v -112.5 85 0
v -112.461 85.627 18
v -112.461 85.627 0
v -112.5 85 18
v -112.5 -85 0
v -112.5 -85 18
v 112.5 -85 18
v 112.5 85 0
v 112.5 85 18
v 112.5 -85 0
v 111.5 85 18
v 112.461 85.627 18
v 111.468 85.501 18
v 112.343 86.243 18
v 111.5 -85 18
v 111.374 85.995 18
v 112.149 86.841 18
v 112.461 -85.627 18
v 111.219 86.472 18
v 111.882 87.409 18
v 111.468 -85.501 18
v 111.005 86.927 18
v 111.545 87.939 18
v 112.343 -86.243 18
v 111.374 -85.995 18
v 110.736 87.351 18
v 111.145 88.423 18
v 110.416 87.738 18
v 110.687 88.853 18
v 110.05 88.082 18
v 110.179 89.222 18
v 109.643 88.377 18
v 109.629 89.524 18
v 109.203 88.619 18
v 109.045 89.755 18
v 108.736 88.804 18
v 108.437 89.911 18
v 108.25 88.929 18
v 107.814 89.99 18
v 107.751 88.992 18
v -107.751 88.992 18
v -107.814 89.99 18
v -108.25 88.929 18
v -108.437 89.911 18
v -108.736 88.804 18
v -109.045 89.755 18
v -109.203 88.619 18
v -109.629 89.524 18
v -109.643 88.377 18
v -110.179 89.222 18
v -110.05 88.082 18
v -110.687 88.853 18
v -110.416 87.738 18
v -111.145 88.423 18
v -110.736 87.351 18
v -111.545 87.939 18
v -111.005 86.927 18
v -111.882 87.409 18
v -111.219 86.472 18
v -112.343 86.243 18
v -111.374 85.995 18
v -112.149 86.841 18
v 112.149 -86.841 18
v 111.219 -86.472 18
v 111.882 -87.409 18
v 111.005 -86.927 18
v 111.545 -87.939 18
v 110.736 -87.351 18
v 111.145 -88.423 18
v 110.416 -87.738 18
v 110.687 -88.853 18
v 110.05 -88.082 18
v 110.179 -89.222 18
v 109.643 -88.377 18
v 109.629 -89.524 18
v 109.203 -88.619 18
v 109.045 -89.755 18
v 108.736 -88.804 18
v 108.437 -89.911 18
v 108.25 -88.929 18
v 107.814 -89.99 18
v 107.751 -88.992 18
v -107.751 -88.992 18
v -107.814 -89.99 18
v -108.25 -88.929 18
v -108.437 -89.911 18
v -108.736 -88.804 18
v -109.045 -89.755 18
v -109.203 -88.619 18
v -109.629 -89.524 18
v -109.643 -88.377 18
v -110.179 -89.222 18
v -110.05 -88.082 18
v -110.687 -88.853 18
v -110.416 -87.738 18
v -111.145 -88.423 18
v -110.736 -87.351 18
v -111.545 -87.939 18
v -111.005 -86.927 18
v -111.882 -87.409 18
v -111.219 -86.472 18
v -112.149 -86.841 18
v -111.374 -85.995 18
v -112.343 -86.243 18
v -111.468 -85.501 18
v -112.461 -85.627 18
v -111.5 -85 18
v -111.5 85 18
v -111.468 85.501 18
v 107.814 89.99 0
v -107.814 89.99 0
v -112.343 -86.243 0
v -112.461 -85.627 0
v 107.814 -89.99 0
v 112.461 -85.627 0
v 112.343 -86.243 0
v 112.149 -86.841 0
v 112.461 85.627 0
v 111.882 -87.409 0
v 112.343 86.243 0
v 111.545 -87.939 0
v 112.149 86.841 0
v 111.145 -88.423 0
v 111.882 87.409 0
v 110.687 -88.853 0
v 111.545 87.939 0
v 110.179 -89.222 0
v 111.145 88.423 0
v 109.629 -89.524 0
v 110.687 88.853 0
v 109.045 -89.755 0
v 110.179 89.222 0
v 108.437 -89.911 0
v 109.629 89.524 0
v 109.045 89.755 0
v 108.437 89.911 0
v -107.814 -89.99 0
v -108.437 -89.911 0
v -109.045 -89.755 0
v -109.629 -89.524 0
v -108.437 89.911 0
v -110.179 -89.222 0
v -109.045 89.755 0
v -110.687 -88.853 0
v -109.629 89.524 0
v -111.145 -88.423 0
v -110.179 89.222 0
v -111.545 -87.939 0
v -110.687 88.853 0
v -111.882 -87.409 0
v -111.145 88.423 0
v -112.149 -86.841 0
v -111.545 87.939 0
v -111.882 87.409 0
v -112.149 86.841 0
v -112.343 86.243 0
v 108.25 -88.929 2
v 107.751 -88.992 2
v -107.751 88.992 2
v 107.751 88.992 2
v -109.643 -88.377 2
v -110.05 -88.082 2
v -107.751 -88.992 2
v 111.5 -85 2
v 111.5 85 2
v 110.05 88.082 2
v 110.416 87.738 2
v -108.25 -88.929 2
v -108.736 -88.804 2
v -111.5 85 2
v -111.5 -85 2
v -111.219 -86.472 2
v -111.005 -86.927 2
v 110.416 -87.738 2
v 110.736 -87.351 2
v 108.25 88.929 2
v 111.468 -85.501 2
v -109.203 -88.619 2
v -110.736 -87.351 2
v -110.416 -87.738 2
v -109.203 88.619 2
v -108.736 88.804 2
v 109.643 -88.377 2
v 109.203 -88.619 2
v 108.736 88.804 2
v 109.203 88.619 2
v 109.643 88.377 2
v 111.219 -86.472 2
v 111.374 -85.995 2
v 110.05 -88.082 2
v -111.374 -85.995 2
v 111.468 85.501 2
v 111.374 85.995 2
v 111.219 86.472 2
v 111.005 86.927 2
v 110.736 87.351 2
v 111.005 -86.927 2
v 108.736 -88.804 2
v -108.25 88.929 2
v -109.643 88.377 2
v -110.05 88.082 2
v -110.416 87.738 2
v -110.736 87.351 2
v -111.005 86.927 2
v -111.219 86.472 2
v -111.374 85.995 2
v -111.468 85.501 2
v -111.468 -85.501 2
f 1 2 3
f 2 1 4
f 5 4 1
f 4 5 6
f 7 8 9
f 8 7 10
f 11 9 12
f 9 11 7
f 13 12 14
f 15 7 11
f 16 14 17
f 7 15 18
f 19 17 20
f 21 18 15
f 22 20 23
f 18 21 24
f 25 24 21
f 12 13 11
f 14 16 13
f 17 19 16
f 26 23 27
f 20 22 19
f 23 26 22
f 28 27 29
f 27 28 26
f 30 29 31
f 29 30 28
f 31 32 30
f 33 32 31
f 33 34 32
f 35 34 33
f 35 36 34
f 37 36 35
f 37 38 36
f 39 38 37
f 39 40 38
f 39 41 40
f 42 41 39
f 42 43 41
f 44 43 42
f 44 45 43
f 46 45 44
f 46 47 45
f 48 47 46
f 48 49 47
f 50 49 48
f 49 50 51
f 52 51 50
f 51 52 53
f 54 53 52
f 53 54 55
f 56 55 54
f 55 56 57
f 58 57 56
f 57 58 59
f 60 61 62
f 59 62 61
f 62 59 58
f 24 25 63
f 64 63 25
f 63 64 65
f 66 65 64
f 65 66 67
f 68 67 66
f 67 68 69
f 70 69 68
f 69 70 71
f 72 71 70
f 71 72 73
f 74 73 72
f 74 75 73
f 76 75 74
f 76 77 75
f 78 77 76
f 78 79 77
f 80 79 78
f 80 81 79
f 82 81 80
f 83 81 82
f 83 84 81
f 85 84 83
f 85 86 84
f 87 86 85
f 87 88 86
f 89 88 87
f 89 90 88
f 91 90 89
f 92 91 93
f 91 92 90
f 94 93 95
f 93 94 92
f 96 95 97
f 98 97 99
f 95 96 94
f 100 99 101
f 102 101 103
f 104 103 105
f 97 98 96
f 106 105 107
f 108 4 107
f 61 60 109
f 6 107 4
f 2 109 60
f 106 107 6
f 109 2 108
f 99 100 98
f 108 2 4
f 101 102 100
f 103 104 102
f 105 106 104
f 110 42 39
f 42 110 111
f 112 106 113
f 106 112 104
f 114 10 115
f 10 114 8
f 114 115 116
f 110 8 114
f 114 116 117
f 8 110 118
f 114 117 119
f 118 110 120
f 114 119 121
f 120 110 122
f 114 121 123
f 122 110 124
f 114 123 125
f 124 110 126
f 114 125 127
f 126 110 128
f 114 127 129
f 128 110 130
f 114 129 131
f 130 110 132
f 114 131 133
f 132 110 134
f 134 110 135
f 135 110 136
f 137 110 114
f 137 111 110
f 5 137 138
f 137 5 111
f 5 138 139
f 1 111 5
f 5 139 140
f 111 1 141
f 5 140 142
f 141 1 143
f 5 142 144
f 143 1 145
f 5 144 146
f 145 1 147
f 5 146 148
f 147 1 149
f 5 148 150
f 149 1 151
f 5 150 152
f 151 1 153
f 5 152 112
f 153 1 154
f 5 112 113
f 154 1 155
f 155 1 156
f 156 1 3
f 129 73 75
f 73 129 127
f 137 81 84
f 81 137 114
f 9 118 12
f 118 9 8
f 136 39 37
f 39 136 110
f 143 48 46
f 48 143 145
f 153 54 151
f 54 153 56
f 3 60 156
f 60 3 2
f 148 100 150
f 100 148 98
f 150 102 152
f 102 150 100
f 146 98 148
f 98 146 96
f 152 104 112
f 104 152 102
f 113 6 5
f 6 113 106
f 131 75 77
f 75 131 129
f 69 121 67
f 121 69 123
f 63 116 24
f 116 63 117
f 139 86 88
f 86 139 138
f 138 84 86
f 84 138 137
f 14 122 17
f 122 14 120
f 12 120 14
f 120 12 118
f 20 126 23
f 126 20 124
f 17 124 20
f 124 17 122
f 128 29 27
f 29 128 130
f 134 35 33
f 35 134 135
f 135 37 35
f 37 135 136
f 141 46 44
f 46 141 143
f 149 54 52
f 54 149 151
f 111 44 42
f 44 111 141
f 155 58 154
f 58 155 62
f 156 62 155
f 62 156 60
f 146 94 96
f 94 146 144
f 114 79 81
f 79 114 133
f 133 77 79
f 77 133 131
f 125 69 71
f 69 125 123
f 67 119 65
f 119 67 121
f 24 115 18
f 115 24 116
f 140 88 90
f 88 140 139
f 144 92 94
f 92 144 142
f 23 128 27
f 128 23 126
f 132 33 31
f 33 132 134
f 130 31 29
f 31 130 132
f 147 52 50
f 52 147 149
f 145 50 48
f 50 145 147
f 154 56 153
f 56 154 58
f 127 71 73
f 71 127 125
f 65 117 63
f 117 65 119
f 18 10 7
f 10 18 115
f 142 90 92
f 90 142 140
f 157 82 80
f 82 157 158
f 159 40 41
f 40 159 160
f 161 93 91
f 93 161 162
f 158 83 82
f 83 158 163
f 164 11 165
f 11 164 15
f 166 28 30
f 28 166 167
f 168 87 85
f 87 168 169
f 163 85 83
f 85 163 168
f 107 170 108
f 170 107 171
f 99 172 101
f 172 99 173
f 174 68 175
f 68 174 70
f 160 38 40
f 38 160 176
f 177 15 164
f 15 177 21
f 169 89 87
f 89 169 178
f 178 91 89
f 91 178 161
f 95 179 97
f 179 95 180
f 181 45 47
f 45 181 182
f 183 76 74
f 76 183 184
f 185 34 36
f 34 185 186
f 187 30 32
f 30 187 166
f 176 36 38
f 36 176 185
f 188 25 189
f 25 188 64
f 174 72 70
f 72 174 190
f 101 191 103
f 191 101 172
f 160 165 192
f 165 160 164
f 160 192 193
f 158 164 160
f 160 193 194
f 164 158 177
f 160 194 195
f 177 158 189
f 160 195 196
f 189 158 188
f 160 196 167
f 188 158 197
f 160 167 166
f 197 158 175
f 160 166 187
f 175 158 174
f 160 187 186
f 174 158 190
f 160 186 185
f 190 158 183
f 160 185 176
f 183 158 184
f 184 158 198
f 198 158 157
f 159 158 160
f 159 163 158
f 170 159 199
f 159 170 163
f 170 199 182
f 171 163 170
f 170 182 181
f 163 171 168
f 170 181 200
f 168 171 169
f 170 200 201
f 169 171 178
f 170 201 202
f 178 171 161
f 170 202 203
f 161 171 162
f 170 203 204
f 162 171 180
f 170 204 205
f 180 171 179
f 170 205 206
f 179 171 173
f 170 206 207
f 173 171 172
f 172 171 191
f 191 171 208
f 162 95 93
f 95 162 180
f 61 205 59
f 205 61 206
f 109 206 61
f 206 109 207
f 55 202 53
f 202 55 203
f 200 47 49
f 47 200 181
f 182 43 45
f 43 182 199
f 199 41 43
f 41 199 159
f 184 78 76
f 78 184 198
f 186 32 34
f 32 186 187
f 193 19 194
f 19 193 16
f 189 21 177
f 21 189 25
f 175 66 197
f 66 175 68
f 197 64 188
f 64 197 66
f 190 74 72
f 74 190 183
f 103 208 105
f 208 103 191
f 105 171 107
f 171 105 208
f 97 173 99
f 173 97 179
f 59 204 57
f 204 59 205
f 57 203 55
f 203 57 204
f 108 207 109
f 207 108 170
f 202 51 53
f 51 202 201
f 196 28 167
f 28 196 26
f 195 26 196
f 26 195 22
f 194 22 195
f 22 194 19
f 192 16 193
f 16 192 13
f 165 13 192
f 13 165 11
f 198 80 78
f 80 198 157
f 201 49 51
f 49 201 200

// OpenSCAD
$fn = 50;


difference() {
	union() {
		hull() {
			translate(v = [-107.5000000000, 85.0000000000, 0]) {
				cylinder(h = 18, r = 5);
			}
			translate(v = [107.5000000000, 85.0000000000, 0]) {
				cylinder(h = 18, r = 5);
			}
			translate(v = [-107.5000000000, -85.0000000000, 0]) {
				cylinder(h = 18, r = 5);
			}
			translate(v = [107.5000000000, -85.0000000000, 0]) {
				cylinder(h = 18, r = 5);
			}
		}
	}
	union() {
		translate(v = [0, 0, 2]) {
			hull() {
				translate(v = [-107.5000000000, 85.0000000000, 0]) {
					cylinder(h = 16, r = 4);
				}
				translate(v = [107.5000000000, 85.0000000000, 0]) {
					cylinder(h = 16, r = 4);
				}
				translate(v = [-107.5000000000, -85.0000000000, 0]) {
					cylinder(h = 16, r = 4);
				}
				translate(v = [107.5000000000, -85.0000000000, 0]) {
					cylinder(h = 16, r = 4);
				}
			}
		}
	}
}
